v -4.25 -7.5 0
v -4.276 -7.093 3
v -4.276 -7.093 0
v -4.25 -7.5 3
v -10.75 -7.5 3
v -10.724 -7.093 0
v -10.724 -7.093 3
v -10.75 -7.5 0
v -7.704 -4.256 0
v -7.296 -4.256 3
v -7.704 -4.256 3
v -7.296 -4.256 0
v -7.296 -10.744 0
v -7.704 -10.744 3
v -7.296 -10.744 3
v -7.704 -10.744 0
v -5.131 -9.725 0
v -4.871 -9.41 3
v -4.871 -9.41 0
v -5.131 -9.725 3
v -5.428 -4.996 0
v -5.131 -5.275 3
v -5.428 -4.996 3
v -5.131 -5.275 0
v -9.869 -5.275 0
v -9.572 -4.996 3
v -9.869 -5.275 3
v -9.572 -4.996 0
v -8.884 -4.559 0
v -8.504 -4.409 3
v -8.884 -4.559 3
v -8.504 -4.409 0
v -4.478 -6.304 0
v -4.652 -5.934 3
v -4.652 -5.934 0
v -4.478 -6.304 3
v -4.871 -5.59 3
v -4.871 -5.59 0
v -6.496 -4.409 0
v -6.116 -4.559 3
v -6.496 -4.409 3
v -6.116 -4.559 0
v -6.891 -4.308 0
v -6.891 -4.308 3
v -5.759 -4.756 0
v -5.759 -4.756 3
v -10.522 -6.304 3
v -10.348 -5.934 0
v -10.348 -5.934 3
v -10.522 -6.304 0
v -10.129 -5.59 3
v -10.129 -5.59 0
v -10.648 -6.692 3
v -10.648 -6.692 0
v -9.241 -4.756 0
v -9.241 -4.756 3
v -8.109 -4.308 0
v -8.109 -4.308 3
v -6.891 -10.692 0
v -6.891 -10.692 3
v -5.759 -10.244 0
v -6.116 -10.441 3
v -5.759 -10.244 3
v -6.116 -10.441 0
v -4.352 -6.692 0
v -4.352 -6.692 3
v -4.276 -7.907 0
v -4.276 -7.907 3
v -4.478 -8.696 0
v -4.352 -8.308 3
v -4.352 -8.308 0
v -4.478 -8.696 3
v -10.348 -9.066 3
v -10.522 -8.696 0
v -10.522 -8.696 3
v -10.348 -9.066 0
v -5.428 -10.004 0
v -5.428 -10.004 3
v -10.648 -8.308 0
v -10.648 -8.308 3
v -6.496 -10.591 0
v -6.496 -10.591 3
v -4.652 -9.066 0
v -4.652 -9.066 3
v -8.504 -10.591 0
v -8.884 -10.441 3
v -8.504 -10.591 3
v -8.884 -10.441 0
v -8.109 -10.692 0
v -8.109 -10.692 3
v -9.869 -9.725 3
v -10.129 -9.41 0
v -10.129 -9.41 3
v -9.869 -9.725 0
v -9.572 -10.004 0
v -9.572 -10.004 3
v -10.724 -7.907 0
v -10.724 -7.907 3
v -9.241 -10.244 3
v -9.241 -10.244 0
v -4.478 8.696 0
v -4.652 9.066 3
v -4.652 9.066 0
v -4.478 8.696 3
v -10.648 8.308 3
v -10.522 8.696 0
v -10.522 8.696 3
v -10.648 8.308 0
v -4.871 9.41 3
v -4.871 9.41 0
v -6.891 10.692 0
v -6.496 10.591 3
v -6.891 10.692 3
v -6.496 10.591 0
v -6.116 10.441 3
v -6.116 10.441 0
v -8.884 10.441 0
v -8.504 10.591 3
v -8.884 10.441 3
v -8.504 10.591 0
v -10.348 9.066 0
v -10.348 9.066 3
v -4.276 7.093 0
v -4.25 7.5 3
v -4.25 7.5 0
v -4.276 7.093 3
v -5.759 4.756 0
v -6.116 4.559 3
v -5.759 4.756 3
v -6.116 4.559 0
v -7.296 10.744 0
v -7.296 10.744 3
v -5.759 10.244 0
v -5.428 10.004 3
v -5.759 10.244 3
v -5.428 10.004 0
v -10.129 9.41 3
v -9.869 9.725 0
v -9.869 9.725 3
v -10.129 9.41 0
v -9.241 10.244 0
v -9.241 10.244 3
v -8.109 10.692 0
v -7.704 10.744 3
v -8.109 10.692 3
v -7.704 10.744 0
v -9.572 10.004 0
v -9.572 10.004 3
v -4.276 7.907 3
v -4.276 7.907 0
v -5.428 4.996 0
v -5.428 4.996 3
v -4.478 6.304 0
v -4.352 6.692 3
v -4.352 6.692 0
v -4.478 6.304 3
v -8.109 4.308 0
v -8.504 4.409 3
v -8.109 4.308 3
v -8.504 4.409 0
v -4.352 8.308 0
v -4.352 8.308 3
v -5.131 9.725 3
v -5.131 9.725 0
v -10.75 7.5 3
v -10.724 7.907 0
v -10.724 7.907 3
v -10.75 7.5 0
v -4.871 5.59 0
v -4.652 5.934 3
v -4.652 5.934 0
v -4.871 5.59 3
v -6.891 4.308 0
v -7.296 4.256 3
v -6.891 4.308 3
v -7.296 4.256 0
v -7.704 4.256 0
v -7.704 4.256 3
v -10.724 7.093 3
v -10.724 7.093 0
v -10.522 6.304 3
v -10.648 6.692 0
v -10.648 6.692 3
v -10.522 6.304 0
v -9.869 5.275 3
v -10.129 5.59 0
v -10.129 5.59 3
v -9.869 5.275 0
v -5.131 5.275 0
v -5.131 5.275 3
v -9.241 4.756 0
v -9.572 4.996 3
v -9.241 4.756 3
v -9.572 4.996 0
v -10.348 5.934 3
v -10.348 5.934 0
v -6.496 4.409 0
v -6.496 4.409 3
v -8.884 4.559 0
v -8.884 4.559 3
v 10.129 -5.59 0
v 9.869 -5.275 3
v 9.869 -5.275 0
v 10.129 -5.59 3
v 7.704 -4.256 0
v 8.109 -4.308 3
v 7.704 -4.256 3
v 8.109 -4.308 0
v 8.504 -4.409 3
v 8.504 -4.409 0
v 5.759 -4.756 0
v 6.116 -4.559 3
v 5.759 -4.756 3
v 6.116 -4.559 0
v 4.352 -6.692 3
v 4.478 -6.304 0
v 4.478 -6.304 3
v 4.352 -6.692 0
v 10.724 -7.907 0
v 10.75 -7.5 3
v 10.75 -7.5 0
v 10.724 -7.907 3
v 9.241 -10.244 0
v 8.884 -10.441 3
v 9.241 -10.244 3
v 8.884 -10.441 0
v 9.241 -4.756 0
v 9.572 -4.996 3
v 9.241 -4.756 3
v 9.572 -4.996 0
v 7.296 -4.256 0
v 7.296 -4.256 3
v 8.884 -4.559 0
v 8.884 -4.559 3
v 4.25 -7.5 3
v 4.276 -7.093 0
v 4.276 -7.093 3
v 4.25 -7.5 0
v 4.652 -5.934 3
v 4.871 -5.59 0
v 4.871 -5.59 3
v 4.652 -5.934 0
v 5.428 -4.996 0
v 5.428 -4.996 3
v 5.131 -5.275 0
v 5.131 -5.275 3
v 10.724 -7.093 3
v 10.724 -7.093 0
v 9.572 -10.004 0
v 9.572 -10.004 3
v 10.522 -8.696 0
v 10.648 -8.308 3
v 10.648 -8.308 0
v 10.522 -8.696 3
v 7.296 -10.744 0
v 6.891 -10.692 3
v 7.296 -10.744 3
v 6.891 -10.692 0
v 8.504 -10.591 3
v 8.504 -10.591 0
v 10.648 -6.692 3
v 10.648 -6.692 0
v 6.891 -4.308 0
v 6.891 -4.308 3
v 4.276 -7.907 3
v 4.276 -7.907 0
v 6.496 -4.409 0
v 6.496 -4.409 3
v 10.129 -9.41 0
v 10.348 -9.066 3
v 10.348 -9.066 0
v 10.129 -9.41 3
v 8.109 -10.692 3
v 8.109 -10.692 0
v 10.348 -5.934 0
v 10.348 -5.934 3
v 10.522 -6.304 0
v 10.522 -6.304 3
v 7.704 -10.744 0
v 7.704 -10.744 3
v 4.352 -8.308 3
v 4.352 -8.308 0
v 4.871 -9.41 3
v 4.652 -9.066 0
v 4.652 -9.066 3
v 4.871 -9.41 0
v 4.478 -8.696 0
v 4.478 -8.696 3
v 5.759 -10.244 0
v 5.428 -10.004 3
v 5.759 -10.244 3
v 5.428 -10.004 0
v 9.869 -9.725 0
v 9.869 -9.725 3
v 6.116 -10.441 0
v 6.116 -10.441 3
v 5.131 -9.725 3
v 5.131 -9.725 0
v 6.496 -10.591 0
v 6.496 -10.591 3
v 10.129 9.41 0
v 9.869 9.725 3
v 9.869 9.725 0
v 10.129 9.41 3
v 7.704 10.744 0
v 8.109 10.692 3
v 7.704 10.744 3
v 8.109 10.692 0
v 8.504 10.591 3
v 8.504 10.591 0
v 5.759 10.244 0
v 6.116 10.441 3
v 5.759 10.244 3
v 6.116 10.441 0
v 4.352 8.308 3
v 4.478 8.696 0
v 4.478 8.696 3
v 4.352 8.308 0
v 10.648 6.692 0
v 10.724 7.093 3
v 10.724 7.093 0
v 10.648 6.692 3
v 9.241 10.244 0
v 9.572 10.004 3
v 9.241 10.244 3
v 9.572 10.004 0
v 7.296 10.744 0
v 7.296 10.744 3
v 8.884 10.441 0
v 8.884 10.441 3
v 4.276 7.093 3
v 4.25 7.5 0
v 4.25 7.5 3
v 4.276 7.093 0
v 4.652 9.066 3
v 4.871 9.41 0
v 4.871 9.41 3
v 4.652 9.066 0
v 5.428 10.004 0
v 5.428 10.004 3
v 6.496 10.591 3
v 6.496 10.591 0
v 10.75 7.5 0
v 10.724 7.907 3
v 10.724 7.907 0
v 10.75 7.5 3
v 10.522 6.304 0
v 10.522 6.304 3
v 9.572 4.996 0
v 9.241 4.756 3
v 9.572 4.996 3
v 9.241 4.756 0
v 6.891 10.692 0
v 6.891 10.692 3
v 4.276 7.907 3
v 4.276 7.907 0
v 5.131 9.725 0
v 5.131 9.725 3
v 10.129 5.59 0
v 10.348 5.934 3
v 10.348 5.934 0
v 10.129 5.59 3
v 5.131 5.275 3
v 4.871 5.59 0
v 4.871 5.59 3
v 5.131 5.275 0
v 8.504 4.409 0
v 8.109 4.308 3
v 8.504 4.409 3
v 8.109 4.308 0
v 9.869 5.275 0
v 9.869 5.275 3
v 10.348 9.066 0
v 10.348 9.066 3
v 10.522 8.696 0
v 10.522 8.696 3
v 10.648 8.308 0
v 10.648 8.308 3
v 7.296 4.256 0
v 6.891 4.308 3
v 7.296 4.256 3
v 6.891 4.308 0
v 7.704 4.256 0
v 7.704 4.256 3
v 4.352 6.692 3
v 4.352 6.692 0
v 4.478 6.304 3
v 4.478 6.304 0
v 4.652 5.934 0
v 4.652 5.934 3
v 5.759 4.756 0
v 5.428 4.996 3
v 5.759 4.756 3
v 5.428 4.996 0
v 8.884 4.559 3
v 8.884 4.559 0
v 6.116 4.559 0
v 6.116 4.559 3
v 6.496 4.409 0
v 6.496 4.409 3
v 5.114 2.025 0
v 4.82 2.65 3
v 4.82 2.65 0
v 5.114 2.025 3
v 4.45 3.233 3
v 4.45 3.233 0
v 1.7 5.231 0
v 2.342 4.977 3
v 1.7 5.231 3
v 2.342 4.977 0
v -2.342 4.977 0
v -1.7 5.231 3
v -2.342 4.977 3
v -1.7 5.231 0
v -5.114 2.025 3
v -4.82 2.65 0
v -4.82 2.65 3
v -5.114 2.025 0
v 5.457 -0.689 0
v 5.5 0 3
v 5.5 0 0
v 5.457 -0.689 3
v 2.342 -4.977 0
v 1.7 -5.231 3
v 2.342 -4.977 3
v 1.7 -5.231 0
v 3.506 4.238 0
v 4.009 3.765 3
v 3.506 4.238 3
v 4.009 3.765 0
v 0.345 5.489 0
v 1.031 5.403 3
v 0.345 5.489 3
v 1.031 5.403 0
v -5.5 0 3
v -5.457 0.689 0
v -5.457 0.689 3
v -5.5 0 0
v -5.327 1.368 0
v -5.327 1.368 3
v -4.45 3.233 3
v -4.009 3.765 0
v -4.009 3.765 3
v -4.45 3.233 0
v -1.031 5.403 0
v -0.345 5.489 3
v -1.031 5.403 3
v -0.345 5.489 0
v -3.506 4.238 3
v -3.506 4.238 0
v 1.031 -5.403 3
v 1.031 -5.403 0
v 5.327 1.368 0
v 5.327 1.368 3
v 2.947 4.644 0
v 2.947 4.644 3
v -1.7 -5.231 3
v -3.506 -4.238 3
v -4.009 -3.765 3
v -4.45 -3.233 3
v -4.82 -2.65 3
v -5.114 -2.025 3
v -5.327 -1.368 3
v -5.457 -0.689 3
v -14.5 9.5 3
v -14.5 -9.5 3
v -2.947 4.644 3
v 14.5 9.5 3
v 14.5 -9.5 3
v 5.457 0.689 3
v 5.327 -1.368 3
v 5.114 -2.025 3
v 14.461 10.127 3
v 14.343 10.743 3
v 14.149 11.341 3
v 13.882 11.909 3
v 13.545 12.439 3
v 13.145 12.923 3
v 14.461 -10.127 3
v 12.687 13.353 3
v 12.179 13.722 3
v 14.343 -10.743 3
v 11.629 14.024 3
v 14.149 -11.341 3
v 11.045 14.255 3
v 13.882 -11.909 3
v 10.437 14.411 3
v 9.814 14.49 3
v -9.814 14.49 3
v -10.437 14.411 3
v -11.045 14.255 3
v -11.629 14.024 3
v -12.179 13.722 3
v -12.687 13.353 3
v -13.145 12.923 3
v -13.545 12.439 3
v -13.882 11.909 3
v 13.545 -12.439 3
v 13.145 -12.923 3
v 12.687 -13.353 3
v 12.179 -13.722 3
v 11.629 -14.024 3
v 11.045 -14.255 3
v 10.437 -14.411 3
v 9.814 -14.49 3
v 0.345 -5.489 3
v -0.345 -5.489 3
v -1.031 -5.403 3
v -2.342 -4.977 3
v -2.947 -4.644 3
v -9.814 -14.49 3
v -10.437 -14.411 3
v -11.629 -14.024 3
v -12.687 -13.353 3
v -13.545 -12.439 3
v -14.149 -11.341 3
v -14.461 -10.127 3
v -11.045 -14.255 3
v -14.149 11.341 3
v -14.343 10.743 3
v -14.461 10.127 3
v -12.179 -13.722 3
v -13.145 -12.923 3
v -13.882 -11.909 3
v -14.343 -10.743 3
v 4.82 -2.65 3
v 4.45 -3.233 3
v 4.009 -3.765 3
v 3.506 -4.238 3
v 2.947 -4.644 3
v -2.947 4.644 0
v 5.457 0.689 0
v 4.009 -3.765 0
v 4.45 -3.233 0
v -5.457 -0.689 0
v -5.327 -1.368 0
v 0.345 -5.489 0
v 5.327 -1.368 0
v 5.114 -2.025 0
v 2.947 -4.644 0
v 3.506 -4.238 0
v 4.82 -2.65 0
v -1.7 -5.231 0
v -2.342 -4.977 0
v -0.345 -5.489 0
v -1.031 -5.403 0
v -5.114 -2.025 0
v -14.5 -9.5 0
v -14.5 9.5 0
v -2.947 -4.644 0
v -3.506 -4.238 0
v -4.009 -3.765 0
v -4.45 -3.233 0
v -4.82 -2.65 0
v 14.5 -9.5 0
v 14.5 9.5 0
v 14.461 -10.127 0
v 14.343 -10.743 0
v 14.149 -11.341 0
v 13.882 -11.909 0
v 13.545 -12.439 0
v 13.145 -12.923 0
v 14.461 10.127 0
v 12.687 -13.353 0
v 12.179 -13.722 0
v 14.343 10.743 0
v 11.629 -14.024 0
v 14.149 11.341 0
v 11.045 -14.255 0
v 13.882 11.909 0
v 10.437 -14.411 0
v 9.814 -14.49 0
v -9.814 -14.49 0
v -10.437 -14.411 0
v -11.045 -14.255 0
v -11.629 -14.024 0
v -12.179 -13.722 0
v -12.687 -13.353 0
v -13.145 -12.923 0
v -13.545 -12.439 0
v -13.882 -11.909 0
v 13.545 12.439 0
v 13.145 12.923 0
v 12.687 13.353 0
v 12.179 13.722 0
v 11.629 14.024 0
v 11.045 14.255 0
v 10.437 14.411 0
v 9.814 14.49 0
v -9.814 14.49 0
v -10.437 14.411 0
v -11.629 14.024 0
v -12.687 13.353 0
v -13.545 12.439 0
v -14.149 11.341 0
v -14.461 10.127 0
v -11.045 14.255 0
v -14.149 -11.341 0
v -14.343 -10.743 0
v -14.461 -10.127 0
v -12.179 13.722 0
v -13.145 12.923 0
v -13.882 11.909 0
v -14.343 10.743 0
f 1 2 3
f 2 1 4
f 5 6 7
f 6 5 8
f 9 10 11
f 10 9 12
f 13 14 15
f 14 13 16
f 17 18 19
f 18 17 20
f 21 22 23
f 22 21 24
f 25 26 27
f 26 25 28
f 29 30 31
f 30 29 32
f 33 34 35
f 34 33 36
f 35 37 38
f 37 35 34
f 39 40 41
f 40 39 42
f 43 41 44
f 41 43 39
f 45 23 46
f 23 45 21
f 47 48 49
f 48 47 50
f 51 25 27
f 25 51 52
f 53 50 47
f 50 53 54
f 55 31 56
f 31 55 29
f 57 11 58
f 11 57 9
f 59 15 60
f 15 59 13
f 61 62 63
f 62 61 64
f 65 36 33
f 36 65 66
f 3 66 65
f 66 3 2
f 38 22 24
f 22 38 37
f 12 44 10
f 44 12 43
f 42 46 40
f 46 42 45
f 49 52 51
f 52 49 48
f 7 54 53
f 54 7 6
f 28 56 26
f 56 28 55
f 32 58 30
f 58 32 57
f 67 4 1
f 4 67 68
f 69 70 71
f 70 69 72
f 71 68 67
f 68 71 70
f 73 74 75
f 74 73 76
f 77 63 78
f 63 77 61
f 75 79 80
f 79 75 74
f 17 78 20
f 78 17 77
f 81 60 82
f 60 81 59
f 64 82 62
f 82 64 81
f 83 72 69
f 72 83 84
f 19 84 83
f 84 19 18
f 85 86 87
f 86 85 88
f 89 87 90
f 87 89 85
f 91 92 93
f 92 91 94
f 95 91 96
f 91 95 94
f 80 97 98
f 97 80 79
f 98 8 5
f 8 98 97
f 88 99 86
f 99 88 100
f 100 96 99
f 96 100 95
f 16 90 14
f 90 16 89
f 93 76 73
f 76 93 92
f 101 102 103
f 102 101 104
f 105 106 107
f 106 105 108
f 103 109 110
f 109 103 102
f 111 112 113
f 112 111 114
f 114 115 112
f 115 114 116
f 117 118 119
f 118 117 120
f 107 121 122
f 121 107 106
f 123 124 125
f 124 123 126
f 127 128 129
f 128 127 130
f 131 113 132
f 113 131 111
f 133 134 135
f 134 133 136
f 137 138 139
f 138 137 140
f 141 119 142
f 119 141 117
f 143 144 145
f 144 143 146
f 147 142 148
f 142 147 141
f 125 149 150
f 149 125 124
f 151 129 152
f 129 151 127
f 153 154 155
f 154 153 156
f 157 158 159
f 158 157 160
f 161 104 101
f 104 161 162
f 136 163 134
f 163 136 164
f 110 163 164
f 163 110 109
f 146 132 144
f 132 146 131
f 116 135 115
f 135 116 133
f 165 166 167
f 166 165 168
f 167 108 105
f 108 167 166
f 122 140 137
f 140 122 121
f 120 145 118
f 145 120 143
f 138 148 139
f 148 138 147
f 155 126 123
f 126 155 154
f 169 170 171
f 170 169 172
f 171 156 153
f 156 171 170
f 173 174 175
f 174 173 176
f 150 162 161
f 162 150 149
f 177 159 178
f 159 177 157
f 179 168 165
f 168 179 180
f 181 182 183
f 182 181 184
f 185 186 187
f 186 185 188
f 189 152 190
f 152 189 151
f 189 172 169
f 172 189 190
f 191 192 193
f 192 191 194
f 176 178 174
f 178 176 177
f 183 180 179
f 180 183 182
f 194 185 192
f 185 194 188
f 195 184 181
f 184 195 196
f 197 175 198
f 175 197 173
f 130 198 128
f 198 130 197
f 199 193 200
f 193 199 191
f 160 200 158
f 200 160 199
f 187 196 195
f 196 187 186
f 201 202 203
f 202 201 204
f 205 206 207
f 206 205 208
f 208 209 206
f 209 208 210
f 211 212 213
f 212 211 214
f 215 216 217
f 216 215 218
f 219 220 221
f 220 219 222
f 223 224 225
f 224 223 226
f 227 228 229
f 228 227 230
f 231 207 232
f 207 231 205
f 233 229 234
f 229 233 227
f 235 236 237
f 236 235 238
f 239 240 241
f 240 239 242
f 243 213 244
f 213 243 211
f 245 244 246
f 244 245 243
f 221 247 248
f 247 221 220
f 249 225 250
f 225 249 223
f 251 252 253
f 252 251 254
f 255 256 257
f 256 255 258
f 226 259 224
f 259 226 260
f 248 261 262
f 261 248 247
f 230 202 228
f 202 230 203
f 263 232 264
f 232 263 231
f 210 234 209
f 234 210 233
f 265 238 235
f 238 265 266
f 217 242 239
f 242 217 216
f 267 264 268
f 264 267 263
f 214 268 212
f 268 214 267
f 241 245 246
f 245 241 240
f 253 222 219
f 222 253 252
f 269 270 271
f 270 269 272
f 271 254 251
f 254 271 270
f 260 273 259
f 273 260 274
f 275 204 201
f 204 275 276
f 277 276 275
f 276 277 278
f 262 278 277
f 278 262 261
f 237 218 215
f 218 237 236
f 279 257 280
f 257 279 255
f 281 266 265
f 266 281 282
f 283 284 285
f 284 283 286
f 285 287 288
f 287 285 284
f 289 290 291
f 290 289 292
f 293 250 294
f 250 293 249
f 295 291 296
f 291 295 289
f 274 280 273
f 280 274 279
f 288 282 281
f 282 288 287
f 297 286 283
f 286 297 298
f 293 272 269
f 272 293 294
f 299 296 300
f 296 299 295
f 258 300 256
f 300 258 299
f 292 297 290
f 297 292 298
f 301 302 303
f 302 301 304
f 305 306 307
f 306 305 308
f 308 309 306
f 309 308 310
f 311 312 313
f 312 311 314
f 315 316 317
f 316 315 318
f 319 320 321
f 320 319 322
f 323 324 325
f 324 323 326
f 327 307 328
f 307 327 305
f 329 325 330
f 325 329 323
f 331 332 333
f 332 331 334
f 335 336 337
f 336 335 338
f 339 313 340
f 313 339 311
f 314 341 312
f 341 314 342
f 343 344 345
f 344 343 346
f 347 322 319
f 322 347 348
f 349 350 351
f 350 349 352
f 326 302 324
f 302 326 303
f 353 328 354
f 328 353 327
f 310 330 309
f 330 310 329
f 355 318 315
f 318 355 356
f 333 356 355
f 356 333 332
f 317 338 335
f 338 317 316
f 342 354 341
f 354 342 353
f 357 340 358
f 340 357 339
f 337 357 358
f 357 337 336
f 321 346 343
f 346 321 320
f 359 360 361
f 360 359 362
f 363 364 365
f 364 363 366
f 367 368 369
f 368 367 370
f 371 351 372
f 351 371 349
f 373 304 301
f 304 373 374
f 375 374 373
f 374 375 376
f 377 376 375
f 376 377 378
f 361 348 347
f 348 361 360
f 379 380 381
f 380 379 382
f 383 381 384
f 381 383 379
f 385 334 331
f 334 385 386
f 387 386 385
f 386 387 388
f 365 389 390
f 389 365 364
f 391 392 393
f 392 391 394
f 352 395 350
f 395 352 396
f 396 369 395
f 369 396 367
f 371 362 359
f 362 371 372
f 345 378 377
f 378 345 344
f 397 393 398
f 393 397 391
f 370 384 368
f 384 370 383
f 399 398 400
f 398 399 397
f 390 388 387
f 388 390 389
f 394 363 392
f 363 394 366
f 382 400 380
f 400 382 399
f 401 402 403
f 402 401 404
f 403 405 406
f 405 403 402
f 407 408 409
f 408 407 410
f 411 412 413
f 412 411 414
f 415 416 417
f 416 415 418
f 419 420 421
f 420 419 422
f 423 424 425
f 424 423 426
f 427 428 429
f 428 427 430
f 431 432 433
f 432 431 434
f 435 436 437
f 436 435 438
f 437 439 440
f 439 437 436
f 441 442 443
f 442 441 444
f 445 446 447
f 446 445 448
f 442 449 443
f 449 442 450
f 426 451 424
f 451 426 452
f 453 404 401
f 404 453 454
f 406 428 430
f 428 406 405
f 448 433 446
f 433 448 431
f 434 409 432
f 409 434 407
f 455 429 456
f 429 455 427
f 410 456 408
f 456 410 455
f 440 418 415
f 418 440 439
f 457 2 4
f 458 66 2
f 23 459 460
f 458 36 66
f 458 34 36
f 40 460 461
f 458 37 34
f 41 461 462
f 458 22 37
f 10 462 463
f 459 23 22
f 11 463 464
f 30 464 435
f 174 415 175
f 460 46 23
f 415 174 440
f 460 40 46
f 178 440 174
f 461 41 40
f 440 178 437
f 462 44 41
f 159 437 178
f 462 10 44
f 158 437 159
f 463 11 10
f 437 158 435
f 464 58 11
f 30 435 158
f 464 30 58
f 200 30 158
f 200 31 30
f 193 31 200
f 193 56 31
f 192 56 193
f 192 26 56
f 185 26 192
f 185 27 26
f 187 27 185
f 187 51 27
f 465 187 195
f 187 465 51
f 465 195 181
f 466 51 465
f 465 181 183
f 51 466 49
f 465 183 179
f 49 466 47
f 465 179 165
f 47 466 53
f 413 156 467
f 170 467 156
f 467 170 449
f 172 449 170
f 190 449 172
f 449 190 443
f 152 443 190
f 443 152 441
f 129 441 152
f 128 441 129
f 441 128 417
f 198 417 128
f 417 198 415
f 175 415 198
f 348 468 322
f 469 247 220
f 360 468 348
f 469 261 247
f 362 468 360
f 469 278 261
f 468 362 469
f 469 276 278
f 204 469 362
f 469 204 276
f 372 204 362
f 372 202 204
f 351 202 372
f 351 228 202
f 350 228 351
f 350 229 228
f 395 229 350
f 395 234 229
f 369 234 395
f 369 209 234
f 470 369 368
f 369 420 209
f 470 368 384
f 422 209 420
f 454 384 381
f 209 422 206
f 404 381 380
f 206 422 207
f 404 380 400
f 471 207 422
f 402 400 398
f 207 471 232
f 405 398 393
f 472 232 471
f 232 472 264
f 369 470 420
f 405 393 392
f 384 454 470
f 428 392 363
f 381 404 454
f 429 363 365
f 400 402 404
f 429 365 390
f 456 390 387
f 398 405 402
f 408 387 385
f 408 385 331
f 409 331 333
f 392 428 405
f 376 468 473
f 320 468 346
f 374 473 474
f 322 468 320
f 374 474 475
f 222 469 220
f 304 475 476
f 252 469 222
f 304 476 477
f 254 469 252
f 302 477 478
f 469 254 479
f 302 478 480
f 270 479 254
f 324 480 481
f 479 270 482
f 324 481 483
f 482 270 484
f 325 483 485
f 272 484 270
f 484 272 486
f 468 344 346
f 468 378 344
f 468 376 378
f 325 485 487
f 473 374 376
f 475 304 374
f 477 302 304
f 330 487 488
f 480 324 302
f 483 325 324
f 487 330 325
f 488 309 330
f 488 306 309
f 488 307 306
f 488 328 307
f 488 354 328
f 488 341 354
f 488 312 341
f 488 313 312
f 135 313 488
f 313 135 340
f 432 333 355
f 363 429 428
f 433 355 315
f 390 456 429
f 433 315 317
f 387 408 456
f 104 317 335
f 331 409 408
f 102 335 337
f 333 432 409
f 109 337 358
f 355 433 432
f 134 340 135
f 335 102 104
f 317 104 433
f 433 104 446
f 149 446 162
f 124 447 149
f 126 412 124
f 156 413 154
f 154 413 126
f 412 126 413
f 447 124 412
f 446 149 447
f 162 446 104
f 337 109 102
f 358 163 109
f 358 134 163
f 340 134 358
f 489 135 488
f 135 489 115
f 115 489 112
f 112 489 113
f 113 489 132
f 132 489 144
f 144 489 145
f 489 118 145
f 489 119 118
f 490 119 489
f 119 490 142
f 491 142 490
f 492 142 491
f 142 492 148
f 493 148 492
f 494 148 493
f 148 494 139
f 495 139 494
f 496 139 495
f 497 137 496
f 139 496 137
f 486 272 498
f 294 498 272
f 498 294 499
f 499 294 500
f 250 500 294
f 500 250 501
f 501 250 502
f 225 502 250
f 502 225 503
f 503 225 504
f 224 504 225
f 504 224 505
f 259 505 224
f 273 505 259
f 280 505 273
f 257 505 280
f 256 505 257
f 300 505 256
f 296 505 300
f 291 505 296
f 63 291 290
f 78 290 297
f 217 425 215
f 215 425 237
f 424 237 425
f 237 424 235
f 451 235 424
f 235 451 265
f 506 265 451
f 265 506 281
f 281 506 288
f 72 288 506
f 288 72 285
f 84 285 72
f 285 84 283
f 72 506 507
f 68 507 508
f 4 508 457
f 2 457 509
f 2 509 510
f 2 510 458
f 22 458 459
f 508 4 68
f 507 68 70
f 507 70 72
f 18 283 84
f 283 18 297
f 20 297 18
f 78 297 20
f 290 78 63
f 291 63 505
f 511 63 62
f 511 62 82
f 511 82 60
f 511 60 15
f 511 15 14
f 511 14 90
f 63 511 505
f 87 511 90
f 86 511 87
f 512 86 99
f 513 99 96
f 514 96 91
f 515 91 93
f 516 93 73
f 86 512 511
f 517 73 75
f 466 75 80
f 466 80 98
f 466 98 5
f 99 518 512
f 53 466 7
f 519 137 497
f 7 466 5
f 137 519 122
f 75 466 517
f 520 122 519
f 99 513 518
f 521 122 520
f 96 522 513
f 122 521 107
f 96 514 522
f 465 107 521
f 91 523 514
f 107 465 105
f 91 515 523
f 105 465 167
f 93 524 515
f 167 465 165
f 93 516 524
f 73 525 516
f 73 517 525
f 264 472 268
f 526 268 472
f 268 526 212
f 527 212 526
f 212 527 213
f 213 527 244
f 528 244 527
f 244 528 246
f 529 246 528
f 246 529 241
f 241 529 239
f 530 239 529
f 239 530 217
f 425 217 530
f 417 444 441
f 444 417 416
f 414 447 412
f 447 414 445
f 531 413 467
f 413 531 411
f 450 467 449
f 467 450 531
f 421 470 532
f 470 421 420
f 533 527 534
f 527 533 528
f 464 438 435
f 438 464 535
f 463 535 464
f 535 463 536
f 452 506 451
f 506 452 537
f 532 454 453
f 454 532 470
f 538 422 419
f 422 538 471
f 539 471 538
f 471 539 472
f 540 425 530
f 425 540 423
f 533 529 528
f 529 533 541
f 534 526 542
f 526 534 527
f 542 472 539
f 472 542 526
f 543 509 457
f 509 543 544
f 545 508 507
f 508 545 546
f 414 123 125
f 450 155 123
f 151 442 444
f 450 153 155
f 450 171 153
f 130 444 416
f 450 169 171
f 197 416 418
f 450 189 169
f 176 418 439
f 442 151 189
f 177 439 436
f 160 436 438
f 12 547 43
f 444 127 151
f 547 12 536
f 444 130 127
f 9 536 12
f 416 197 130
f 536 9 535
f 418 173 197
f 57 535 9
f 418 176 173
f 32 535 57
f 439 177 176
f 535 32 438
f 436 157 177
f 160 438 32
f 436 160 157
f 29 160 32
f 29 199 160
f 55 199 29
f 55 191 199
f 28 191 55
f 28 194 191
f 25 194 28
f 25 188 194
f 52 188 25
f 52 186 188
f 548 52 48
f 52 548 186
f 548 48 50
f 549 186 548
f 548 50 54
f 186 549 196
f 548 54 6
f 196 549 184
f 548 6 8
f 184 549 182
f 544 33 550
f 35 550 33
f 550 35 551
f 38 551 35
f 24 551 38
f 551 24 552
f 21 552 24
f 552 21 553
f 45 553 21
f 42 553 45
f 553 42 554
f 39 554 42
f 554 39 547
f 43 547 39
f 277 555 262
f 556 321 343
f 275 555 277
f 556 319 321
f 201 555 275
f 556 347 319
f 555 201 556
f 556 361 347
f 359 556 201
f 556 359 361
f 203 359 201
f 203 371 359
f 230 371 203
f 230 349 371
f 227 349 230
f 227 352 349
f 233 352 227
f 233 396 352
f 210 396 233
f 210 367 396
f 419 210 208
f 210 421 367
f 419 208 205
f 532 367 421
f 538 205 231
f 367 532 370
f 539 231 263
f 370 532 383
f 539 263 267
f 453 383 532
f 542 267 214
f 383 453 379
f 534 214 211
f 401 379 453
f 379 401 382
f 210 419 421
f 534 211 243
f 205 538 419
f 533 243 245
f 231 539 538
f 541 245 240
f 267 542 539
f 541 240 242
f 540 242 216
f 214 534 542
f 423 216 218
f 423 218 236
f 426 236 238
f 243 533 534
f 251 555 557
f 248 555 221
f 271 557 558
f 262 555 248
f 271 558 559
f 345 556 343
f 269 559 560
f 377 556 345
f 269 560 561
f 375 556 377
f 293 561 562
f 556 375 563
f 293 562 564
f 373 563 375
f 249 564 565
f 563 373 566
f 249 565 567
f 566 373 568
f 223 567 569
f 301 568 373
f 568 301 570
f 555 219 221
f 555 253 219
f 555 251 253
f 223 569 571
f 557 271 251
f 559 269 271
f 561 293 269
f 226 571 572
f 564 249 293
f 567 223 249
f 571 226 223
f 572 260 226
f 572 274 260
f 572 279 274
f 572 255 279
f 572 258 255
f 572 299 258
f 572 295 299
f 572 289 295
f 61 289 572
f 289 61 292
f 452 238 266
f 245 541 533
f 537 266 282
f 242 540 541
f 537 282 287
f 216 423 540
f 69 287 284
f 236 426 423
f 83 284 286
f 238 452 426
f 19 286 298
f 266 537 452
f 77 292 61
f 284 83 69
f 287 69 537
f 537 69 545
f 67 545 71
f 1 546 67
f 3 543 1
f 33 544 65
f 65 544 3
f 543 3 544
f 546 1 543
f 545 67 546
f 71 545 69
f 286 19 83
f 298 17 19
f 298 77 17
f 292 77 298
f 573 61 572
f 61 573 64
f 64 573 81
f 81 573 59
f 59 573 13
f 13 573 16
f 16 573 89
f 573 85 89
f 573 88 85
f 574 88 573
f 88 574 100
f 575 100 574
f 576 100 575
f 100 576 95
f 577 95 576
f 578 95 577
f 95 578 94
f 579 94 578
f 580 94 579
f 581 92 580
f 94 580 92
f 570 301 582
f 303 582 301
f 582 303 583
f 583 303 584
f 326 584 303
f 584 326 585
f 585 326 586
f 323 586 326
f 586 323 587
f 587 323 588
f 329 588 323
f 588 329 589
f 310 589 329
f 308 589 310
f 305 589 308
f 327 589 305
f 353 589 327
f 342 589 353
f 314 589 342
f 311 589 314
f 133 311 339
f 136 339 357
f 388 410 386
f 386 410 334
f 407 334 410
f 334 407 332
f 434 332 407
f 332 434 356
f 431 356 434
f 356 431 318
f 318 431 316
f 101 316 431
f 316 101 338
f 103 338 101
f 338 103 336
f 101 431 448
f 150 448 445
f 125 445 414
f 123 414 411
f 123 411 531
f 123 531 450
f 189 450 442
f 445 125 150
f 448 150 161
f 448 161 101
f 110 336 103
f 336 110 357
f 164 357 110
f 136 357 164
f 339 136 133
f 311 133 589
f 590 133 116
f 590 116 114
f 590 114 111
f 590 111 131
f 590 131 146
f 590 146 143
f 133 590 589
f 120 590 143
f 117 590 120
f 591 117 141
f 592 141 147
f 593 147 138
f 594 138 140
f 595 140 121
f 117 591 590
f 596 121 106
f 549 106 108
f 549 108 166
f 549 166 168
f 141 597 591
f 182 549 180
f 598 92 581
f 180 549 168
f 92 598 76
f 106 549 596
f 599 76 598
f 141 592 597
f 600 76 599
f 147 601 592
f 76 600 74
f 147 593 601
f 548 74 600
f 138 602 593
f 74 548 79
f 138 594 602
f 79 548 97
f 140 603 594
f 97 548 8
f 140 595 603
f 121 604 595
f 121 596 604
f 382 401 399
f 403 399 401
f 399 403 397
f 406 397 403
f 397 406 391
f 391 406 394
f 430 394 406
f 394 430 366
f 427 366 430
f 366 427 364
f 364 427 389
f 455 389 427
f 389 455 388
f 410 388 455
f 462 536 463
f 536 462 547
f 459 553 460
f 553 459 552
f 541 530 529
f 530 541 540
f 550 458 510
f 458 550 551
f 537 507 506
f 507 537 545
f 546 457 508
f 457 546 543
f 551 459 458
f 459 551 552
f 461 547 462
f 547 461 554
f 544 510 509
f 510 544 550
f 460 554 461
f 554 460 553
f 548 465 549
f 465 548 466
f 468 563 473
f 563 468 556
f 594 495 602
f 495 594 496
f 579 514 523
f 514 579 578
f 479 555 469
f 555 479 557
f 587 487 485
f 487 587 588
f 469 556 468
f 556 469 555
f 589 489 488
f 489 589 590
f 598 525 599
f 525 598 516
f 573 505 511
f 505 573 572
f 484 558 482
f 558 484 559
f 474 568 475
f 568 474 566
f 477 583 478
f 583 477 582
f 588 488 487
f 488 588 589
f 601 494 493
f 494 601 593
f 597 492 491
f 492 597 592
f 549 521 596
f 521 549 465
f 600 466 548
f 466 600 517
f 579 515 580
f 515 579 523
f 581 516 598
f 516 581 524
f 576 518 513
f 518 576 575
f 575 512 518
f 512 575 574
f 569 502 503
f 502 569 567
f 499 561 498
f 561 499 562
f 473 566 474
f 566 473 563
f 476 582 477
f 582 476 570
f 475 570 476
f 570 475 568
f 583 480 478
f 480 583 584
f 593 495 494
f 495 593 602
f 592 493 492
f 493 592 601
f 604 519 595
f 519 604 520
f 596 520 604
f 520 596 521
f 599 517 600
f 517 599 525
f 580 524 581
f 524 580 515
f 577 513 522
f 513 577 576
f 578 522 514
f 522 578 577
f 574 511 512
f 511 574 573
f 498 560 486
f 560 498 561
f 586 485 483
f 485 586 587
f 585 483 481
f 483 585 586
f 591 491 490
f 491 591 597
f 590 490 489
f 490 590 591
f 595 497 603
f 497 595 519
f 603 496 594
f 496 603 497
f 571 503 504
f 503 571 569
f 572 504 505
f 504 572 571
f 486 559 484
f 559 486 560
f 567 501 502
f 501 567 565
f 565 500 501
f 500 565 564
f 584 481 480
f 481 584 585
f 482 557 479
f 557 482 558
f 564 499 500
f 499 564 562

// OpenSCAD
$fn = 50;


difference() {
	union() {
		hull() {
			translate(v = [-9.5000000000, 9.5000000000, 0]) {
				cylinder(h = 3, r = 5);
			}
			translate(v = [9.5000000000, 9.5000000000, 0]) {
				cylinder(h = 3, r = 5);
			}
			translate(v = [-9.5000000000, -9.5000000000, 0]) {
				cylinder(h = 3, r = 5);
			}
			translate(v = [9.5000000000, -9.5000000000, 0]) {
				cylinder(h = 3, r = 5);
			}
		}
	}
	union() {
		#translate(v = [-7.5000000000, -7.5000000000, -100.0000000000]) {
			cylinder(h = 200, r = 3.2500000000);
		}
		#translate(v = [-7.5000000000, 7.5000000000, -100.0000000000]) {
			cylinder(h = 200, r = 3.2500000000);
		}
		#translate(v = [7.5000000000, -7.5000000000, -100.0000000000]) {
			cylinder(h = 200, r = 3.2500000000);
		}
		#translate(v = [7.5000000000, 7.5000000000, -100.0000000000]) {
			cylinder(h = 200, r = 3.2500000000);
		}
		#cylinder(h = 3, r = 5.5000000000);
	}
}
